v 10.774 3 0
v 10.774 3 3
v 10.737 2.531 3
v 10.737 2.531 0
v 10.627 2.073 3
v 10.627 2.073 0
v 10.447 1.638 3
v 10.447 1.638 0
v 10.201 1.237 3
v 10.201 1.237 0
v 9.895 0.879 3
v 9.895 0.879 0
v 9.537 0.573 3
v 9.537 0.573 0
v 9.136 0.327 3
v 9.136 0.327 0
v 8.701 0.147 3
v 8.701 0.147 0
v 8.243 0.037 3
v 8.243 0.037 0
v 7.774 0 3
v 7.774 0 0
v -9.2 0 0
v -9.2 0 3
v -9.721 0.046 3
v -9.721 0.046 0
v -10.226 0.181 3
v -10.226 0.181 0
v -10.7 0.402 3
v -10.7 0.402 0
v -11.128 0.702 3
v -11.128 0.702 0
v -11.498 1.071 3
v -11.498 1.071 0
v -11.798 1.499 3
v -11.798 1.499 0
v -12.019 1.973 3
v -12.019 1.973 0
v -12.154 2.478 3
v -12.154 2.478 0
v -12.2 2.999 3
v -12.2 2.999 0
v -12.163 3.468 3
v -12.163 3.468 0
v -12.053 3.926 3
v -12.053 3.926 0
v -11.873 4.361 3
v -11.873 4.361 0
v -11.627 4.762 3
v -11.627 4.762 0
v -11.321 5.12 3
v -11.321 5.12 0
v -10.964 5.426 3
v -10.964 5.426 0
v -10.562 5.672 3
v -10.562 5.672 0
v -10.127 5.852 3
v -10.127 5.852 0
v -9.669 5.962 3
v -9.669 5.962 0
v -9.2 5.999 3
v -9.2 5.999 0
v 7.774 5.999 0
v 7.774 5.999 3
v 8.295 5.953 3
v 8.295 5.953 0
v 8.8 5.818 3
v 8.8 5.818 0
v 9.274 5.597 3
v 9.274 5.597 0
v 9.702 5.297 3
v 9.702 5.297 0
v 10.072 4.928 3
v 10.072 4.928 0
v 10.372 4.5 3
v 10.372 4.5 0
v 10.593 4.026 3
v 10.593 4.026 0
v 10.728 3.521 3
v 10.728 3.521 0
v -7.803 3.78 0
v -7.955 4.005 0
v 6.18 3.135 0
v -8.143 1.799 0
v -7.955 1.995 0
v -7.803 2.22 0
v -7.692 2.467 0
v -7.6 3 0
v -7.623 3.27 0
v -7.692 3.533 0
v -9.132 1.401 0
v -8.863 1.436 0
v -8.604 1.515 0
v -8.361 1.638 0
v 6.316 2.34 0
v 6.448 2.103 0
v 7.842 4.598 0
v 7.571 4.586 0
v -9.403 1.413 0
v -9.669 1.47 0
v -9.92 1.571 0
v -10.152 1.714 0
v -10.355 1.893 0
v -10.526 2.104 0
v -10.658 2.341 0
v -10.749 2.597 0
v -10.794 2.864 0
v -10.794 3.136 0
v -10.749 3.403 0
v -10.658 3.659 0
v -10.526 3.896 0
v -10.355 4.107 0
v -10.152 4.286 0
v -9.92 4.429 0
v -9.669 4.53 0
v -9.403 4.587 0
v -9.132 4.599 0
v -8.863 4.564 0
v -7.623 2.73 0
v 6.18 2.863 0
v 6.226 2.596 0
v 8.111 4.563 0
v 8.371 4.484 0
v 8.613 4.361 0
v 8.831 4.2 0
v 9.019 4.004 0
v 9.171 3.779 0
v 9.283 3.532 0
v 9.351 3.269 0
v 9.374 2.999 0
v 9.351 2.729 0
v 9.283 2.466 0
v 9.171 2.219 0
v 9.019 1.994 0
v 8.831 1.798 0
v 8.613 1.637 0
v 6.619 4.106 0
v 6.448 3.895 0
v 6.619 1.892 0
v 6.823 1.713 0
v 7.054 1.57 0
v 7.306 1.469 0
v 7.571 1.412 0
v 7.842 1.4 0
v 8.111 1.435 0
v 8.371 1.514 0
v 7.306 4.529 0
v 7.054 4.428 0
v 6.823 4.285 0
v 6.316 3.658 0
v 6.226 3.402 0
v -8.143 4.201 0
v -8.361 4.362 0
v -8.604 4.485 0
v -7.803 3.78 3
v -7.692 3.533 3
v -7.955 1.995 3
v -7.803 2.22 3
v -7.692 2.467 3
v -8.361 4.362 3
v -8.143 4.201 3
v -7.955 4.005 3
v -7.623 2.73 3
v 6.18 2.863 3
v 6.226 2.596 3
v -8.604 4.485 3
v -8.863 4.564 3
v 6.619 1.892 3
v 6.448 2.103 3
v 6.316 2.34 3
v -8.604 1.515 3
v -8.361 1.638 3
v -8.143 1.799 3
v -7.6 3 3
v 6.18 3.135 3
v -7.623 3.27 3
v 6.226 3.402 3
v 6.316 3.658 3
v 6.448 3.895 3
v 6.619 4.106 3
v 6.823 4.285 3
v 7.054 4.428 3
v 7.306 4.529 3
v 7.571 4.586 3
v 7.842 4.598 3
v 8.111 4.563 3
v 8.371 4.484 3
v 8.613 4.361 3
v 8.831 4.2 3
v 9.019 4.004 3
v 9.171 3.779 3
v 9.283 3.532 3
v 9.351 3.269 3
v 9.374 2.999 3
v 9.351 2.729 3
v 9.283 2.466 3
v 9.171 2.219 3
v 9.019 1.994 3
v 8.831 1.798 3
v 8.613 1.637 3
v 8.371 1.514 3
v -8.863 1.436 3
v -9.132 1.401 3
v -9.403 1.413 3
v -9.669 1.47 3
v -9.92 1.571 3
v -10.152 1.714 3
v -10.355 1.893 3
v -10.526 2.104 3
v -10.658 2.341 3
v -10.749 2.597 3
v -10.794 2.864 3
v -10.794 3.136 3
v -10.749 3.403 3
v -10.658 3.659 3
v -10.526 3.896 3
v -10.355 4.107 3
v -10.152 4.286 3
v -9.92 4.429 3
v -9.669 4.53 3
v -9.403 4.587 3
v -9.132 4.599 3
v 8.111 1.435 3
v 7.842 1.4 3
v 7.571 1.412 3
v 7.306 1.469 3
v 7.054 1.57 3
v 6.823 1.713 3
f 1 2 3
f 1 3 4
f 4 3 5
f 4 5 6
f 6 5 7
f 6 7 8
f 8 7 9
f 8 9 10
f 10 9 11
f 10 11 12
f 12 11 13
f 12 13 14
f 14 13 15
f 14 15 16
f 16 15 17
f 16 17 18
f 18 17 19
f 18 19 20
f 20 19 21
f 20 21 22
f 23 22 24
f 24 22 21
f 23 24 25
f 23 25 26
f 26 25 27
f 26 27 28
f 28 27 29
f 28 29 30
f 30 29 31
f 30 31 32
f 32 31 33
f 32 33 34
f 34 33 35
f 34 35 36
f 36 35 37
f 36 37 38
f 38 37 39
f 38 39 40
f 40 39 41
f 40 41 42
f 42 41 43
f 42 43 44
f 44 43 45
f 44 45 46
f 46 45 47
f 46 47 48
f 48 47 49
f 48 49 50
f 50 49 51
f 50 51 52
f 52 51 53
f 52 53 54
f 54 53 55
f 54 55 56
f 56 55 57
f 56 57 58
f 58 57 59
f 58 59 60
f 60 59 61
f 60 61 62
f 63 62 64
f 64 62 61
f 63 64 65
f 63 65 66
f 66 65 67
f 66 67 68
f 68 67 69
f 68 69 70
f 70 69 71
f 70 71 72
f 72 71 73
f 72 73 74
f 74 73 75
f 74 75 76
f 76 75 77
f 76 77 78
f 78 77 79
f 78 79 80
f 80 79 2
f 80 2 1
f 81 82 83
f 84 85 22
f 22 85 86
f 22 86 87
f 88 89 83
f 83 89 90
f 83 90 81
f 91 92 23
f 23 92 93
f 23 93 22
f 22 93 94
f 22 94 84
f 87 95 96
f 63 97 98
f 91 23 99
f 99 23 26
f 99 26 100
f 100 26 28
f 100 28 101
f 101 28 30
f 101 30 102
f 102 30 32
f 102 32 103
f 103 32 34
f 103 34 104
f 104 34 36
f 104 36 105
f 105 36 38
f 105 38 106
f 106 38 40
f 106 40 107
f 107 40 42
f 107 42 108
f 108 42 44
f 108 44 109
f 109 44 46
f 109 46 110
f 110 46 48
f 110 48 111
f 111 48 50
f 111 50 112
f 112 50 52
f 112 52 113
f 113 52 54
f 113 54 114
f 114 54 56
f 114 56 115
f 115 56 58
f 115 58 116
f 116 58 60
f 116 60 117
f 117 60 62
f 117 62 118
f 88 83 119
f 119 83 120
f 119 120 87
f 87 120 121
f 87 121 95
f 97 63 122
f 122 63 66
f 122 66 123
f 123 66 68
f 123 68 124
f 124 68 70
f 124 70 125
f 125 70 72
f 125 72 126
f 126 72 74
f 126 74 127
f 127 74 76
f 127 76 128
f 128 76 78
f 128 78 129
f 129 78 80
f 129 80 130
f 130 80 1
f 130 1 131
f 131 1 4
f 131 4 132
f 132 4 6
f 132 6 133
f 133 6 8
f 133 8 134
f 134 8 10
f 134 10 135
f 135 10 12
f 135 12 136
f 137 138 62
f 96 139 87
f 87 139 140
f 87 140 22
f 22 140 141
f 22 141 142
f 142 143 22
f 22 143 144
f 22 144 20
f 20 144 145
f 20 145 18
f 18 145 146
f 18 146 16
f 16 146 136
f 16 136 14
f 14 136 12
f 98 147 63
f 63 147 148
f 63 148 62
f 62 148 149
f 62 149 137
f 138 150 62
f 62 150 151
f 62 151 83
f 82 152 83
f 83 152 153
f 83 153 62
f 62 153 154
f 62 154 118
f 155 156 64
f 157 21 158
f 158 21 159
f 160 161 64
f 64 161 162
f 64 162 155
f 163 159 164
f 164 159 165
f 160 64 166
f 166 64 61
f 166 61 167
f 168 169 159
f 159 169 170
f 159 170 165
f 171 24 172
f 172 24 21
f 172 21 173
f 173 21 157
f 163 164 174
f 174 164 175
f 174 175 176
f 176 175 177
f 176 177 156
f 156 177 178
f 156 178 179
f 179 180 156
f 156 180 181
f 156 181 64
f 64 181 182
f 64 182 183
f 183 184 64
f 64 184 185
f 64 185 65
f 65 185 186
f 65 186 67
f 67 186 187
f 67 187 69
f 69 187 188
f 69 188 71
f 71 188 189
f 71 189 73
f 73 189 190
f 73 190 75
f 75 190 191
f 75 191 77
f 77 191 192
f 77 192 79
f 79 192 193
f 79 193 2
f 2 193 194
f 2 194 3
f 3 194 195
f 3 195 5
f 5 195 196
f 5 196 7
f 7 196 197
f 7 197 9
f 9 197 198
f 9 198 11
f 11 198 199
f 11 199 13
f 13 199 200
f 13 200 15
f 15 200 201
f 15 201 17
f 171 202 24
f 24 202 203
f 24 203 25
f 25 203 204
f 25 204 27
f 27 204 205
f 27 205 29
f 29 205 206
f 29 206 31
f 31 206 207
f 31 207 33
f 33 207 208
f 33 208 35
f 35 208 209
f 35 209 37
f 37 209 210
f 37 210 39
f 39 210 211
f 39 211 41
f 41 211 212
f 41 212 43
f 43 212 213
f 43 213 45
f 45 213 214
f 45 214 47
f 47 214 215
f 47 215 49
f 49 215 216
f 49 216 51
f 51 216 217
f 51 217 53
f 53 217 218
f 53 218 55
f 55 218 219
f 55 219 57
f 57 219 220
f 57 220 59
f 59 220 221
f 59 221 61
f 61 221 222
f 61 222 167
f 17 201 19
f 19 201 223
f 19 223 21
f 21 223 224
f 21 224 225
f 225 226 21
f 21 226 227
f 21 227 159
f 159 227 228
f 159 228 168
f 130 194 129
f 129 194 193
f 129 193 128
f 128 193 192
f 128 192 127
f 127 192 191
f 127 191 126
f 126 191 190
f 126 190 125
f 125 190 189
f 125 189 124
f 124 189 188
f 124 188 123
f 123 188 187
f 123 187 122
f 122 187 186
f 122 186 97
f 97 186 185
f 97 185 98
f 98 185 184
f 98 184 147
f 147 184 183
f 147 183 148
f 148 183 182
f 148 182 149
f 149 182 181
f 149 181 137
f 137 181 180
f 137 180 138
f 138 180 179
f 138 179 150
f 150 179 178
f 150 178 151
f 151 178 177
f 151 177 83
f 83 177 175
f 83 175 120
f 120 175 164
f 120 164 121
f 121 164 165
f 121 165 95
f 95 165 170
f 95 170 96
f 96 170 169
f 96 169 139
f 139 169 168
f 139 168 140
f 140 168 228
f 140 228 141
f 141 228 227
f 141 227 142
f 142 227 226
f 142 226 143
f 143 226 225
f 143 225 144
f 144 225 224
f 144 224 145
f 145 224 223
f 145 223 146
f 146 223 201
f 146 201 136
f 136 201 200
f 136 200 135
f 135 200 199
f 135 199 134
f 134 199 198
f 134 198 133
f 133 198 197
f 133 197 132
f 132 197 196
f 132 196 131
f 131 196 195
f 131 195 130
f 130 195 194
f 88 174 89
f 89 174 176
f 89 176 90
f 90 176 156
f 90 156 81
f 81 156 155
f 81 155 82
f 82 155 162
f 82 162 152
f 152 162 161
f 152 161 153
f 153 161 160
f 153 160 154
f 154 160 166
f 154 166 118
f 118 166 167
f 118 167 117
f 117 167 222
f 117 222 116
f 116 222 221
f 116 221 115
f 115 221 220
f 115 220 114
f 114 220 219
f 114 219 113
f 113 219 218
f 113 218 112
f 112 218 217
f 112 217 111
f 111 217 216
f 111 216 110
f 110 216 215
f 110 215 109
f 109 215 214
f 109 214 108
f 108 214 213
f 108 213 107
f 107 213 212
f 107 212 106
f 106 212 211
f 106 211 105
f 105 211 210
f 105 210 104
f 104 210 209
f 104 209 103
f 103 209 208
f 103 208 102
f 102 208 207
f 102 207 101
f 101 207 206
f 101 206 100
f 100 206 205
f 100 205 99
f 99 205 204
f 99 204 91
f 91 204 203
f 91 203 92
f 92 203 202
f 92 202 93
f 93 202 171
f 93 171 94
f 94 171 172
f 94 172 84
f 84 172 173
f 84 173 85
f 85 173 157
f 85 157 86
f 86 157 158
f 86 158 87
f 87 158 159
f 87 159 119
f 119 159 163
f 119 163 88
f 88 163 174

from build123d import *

# Parameters (mm, degrees)
SKETCH_1_R          = 1.35
EXTRUDE_1_DEPTH     = 3
SKETCH_2_R          = 1.6
CUT_EXTRUDE_1_DEPTH = 14.922339711


with BuildPart() as part:
    # 草图1 → 凸台-拉伸1 (new body)
    with BuildSketch(Plane.XY.offset(3)):
        with BuildLine():
            Line((7.774087989, 5.999), (-9.200145164, 5.999))
            ThreePointArc((-9.200145164, 5.999), (-11.321465508, 5.120320344), (-12.200145164, 2.999))
            ThreePointArc((-12.200145164, 2.999), (-11.321112092, 0.878326133), (-9.200145331, 0))
            Line((-9.200145331, 0), (7.774087823, 0))
            ThreePointArc((7.774087823, 0), (9.895408166, 0.878679656), (10.774087823, 3))
            ThreePointArc((10.774087823, 3), (9.89505475, 5.120673867), (7.774087989, 5.999))
        make_face()
        with Locations((7.774087823, 3)):
            Circle(SKETCH_1_R, mode=Mode.SUBTRACT)
        with Locations((-9.200145331, 3)):
            Circle(SKETCH_1_R, mode=Mode.SUBTRACT)
    extrude(amount=-EXTRUDE_1_DEPTH)

    # 草图2 → 切除-拉伸1 (cut, through all)
    with BuildSketch(Plane.XY.offset(3)):
        with Locations((-9.200145331, 3)):
            Circle(SKETCH_2_R)
        with Locations((7.774087989, 2.999)):
            Circle(SKETCH_2_R)
    extrude(amount=-CUT_EXTRUDE_1_DEPTH, mode=Mode.SUBTRACT)


solid = part.part
